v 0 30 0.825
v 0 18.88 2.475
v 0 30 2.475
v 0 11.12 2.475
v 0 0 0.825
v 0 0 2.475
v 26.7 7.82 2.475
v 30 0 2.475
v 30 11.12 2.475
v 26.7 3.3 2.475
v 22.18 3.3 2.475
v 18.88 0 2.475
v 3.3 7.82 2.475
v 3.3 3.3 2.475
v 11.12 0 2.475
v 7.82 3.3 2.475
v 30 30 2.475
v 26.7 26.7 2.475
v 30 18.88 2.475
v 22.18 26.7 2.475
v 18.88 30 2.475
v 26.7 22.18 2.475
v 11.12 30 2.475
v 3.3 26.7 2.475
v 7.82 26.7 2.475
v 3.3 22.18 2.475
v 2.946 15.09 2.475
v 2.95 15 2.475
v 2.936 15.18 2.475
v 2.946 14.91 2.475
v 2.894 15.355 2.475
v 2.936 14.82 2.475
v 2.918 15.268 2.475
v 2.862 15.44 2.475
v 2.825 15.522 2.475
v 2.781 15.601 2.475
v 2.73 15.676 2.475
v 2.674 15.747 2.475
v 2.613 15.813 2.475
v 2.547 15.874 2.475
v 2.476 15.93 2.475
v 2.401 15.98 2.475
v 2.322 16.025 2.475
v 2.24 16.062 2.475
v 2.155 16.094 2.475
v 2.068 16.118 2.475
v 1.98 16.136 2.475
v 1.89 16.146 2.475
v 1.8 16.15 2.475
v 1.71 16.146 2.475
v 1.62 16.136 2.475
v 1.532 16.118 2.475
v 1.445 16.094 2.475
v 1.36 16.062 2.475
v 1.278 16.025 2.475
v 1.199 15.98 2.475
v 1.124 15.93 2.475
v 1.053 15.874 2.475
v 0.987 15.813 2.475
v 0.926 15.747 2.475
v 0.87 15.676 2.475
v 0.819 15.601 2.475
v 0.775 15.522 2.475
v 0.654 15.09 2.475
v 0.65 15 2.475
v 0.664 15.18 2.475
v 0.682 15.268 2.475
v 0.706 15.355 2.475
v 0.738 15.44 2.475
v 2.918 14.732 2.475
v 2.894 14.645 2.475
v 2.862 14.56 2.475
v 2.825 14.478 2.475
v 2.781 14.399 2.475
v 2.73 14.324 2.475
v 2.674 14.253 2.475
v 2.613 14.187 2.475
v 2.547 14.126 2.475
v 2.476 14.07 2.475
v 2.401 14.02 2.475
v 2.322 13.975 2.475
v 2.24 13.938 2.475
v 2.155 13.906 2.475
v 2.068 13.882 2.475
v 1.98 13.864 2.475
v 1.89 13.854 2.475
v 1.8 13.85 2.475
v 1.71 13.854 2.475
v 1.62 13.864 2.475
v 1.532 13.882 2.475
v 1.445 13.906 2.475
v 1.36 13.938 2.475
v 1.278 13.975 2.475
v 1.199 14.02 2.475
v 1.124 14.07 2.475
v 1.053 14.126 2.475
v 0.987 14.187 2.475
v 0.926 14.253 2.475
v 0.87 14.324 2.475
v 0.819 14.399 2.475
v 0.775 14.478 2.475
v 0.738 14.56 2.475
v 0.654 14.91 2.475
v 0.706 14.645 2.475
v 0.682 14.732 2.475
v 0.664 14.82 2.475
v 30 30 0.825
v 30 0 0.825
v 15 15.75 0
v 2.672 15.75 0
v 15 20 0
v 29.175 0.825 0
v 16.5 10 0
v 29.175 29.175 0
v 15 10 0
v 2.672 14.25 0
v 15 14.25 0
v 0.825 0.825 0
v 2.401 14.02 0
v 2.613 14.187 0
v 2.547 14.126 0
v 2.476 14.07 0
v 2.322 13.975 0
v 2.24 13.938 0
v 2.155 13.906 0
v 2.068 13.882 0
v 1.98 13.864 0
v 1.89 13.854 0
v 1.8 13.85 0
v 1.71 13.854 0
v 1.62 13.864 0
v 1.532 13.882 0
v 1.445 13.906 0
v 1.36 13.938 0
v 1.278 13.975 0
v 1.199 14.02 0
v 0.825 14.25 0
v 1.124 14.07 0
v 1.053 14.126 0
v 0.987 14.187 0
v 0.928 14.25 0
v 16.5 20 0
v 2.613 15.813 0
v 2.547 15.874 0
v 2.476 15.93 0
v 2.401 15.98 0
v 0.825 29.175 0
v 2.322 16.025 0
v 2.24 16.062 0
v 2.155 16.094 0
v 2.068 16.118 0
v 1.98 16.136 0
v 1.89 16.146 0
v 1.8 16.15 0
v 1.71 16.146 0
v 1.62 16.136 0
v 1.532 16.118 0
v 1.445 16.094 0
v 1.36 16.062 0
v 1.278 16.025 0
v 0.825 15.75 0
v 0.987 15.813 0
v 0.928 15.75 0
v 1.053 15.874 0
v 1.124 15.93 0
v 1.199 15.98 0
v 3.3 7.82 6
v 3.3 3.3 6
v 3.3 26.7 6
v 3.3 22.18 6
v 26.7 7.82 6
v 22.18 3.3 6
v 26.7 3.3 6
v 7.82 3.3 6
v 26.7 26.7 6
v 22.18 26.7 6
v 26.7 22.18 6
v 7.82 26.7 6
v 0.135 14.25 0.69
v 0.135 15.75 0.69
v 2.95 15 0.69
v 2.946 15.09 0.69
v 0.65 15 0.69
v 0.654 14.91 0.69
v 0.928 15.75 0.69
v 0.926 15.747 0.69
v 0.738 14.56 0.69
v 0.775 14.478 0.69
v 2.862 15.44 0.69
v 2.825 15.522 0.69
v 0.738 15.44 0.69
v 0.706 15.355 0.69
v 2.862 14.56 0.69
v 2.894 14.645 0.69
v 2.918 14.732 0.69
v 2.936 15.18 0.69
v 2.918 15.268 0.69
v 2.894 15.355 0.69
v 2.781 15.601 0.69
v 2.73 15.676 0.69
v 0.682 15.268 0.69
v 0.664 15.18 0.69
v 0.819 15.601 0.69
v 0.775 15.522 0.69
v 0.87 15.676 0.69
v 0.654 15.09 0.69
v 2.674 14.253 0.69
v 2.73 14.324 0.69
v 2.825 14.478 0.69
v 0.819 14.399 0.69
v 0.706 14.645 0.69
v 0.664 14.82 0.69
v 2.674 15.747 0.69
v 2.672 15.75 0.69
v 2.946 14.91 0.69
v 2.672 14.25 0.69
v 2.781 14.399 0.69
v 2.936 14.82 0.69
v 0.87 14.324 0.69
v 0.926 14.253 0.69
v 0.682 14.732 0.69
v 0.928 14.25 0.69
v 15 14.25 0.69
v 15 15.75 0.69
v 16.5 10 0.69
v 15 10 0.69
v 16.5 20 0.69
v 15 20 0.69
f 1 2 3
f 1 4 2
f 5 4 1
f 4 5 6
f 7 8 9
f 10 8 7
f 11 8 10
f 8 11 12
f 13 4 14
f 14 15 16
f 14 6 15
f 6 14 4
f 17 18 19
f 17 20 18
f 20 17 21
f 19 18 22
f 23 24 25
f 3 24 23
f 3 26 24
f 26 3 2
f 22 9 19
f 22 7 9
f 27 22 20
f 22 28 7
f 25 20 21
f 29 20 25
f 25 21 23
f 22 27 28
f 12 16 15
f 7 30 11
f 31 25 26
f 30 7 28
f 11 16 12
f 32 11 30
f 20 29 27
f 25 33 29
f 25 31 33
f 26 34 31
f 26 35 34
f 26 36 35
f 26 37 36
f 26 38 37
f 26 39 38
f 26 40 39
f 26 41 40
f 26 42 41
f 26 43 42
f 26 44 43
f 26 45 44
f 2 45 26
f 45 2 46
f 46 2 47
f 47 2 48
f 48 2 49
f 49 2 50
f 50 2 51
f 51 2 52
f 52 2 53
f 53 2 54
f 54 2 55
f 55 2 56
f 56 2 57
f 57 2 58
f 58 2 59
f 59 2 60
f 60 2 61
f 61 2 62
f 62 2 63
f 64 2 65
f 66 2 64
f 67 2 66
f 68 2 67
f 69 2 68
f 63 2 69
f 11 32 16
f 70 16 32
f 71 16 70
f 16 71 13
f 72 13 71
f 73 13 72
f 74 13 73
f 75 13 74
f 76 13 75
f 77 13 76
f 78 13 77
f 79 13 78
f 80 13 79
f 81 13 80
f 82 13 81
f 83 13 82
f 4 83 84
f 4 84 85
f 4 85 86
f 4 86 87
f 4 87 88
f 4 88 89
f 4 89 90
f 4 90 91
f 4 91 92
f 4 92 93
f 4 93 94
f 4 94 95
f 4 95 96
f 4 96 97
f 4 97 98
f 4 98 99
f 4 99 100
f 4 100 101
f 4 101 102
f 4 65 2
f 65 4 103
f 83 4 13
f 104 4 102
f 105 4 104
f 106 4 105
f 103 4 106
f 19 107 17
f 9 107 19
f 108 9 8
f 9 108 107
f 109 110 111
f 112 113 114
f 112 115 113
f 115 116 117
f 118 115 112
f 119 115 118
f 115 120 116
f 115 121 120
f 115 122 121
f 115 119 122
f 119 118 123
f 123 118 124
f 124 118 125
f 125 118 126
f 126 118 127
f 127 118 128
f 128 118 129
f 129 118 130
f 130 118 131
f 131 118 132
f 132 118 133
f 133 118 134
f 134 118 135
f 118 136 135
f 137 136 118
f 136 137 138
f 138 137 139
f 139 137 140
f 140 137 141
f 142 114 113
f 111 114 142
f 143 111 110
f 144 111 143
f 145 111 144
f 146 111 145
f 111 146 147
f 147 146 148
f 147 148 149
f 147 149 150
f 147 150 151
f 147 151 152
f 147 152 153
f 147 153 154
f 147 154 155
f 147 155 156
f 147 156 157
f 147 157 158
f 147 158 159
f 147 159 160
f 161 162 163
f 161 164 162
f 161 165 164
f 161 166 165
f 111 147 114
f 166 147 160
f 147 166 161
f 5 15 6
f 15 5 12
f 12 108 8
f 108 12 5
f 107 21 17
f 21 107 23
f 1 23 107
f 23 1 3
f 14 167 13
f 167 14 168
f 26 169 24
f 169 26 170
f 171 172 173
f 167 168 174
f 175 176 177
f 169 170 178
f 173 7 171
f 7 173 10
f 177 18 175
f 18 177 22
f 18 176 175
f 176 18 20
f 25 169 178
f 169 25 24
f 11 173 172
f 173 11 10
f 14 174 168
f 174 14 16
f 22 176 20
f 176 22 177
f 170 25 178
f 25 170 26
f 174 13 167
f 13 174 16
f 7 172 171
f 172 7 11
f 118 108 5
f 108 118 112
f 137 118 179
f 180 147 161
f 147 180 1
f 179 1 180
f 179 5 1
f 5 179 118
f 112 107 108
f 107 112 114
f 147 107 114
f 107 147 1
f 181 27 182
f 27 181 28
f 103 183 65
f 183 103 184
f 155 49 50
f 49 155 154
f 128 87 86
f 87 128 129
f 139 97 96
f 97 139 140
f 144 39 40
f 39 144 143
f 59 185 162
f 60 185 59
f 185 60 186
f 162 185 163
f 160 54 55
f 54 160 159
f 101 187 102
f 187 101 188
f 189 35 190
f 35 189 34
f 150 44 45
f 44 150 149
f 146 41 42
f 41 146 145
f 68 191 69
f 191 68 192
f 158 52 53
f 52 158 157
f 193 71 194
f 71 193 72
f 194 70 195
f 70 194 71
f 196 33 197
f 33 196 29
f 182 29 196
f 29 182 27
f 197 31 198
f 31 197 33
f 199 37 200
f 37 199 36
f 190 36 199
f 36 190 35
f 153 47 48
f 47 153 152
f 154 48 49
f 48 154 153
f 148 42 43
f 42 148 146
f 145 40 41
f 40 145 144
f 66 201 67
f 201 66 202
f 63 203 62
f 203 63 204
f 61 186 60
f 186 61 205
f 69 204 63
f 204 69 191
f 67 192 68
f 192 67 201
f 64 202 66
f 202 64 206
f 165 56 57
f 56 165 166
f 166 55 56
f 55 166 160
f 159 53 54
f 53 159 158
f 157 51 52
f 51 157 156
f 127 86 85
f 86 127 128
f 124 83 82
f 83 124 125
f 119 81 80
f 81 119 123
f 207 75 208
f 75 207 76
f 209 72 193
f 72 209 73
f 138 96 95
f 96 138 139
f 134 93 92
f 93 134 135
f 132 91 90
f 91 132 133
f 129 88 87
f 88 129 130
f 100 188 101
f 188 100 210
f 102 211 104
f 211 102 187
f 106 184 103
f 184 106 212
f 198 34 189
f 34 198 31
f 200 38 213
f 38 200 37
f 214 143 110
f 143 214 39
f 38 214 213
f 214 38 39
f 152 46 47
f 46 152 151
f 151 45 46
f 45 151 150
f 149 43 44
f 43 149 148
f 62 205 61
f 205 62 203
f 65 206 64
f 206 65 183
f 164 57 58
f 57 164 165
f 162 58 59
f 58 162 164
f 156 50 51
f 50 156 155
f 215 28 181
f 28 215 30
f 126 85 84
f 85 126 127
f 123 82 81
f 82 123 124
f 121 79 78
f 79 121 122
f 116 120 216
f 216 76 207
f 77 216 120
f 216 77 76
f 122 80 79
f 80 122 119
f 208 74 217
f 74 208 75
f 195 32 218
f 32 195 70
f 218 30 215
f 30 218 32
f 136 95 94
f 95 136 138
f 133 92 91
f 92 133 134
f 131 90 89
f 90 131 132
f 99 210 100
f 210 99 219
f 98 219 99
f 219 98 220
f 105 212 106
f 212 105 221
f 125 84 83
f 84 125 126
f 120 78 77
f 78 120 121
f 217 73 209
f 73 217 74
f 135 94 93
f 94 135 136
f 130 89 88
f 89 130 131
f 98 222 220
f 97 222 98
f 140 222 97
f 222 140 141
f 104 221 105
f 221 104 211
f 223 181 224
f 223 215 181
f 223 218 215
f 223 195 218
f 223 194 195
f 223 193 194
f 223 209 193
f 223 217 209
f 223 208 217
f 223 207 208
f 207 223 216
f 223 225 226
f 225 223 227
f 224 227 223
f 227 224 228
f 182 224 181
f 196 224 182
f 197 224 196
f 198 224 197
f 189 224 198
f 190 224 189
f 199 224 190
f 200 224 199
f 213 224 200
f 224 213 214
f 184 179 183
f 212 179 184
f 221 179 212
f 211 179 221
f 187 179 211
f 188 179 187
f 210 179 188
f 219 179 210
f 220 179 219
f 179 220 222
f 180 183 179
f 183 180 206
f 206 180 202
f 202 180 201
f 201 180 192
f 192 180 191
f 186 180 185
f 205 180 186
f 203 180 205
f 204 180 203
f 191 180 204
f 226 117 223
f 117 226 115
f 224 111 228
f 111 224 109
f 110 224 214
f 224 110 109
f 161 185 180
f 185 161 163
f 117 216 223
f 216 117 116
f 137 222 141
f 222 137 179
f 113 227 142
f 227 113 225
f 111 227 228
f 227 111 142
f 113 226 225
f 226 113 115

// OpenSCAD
// file: settings.scad
cube_width=30;
cube_height=16;
cube_thickness=3.3;

cap_width=30;
cap_height=6;
cap_thickness=3.3;

glyph_depth=0.7;
glyph_thickness=1.5;

photo_resitor_hole_r = 3.1;
spring_contact_hole_r = 3.35;
// file: sym_ground.scad
module ground(length, width, thickness, height)
{
    translate([0,-thickness/2,0])cube([length/2, thickness, height]);
    
    translate([length/2,-width/2, 0])cube([thickness, width, height]);
}

ground(30, 12, 1, 1);
// file: cap_1x1.scad
include <settings.scad>

module cap_1x1(width, height, thickness, holes_mask)
{
    width1=width-thickness;
    difference()
    {
        union()
        {
            cube([width, width, thickness*3/4]);
            translate([thickness,thickness,0])cube([width-2*thickness, width-2*thickness, height]);
        }
        union()
        {
            translate([width/2,width/2,0])rotate([0,0,45])translate([-width1/2,-width1/2,thickness*3/4]) cube([width1,width1,height]);
                        //corners
            translate([0,0.25*thickness,0])rotate([45,0,0]) translate([-0.5*width, -width, -0.5*height]) cube([2*width, width, 2*height]);
            translate([0.25*thickness,0,0]) rotate([0,-45,0]) translate([-width, -0.5*width, -0.5*height]) cube([width, 2*width, 2*height]);
            translate([width-0.25*thickness,0,0]) rotate([0,45,0]) translate([0, 0, -0.5*height]) cube([width, 2*width, 2*height]);
            translate([0,width-0.25*thickness,0]) rotate([-45,0,0]) translate([-0.5*width, 0, -0.5*height]) cube([2*width, width, 2*height]);
            
            if (holes_mask >= 8)
            {
                translate([width/2, thickness-1.5, -0.5]) cylinder(r=1.15, h=height*1.5, $fn=80);
            }
            if ((holes_mask%8) >= 4)
            {
                translate([width/2, width-thickness+1.5, -0.5]) cylinder(r=1.15, h=height*1.5, $fn=80);
            }
            if ((holes_mask%4)>= 2)
            {
                translate([thickness-1.5, width/2, -0.5]) cylinder(r=1.15, h=height*1.5, $fn=80);
            }
            if (holes_mask%2 >= 1)
            {
                translate([width-thickness+1.5, width/2, -0.5]) cylinder(r=1.15, h=height*1.5, $fn=80);
            }
        }
    }
}

cap_1x1(cap_width, cap_height, cap_thickness, 9);
//ring(10,1,1);
//arrow(1, 20, 3, 1);
//transistor_npn(30, 1, 1);
// main file
use <cap_1x1.scad>
use <sym_ground.scad>
include <settings.scad>

module cap_1x1_ground(width, height, thickness)
{
    difference()
    {
        cap_1x1(width, height, thickness, 2);
        translate([0,width/2,-0.01]) ground(width, width/3, glyph_thickness, glyph_depth);
    }
}

cap_1x1_ground(cap_width, cap_height, cap_thickness);
